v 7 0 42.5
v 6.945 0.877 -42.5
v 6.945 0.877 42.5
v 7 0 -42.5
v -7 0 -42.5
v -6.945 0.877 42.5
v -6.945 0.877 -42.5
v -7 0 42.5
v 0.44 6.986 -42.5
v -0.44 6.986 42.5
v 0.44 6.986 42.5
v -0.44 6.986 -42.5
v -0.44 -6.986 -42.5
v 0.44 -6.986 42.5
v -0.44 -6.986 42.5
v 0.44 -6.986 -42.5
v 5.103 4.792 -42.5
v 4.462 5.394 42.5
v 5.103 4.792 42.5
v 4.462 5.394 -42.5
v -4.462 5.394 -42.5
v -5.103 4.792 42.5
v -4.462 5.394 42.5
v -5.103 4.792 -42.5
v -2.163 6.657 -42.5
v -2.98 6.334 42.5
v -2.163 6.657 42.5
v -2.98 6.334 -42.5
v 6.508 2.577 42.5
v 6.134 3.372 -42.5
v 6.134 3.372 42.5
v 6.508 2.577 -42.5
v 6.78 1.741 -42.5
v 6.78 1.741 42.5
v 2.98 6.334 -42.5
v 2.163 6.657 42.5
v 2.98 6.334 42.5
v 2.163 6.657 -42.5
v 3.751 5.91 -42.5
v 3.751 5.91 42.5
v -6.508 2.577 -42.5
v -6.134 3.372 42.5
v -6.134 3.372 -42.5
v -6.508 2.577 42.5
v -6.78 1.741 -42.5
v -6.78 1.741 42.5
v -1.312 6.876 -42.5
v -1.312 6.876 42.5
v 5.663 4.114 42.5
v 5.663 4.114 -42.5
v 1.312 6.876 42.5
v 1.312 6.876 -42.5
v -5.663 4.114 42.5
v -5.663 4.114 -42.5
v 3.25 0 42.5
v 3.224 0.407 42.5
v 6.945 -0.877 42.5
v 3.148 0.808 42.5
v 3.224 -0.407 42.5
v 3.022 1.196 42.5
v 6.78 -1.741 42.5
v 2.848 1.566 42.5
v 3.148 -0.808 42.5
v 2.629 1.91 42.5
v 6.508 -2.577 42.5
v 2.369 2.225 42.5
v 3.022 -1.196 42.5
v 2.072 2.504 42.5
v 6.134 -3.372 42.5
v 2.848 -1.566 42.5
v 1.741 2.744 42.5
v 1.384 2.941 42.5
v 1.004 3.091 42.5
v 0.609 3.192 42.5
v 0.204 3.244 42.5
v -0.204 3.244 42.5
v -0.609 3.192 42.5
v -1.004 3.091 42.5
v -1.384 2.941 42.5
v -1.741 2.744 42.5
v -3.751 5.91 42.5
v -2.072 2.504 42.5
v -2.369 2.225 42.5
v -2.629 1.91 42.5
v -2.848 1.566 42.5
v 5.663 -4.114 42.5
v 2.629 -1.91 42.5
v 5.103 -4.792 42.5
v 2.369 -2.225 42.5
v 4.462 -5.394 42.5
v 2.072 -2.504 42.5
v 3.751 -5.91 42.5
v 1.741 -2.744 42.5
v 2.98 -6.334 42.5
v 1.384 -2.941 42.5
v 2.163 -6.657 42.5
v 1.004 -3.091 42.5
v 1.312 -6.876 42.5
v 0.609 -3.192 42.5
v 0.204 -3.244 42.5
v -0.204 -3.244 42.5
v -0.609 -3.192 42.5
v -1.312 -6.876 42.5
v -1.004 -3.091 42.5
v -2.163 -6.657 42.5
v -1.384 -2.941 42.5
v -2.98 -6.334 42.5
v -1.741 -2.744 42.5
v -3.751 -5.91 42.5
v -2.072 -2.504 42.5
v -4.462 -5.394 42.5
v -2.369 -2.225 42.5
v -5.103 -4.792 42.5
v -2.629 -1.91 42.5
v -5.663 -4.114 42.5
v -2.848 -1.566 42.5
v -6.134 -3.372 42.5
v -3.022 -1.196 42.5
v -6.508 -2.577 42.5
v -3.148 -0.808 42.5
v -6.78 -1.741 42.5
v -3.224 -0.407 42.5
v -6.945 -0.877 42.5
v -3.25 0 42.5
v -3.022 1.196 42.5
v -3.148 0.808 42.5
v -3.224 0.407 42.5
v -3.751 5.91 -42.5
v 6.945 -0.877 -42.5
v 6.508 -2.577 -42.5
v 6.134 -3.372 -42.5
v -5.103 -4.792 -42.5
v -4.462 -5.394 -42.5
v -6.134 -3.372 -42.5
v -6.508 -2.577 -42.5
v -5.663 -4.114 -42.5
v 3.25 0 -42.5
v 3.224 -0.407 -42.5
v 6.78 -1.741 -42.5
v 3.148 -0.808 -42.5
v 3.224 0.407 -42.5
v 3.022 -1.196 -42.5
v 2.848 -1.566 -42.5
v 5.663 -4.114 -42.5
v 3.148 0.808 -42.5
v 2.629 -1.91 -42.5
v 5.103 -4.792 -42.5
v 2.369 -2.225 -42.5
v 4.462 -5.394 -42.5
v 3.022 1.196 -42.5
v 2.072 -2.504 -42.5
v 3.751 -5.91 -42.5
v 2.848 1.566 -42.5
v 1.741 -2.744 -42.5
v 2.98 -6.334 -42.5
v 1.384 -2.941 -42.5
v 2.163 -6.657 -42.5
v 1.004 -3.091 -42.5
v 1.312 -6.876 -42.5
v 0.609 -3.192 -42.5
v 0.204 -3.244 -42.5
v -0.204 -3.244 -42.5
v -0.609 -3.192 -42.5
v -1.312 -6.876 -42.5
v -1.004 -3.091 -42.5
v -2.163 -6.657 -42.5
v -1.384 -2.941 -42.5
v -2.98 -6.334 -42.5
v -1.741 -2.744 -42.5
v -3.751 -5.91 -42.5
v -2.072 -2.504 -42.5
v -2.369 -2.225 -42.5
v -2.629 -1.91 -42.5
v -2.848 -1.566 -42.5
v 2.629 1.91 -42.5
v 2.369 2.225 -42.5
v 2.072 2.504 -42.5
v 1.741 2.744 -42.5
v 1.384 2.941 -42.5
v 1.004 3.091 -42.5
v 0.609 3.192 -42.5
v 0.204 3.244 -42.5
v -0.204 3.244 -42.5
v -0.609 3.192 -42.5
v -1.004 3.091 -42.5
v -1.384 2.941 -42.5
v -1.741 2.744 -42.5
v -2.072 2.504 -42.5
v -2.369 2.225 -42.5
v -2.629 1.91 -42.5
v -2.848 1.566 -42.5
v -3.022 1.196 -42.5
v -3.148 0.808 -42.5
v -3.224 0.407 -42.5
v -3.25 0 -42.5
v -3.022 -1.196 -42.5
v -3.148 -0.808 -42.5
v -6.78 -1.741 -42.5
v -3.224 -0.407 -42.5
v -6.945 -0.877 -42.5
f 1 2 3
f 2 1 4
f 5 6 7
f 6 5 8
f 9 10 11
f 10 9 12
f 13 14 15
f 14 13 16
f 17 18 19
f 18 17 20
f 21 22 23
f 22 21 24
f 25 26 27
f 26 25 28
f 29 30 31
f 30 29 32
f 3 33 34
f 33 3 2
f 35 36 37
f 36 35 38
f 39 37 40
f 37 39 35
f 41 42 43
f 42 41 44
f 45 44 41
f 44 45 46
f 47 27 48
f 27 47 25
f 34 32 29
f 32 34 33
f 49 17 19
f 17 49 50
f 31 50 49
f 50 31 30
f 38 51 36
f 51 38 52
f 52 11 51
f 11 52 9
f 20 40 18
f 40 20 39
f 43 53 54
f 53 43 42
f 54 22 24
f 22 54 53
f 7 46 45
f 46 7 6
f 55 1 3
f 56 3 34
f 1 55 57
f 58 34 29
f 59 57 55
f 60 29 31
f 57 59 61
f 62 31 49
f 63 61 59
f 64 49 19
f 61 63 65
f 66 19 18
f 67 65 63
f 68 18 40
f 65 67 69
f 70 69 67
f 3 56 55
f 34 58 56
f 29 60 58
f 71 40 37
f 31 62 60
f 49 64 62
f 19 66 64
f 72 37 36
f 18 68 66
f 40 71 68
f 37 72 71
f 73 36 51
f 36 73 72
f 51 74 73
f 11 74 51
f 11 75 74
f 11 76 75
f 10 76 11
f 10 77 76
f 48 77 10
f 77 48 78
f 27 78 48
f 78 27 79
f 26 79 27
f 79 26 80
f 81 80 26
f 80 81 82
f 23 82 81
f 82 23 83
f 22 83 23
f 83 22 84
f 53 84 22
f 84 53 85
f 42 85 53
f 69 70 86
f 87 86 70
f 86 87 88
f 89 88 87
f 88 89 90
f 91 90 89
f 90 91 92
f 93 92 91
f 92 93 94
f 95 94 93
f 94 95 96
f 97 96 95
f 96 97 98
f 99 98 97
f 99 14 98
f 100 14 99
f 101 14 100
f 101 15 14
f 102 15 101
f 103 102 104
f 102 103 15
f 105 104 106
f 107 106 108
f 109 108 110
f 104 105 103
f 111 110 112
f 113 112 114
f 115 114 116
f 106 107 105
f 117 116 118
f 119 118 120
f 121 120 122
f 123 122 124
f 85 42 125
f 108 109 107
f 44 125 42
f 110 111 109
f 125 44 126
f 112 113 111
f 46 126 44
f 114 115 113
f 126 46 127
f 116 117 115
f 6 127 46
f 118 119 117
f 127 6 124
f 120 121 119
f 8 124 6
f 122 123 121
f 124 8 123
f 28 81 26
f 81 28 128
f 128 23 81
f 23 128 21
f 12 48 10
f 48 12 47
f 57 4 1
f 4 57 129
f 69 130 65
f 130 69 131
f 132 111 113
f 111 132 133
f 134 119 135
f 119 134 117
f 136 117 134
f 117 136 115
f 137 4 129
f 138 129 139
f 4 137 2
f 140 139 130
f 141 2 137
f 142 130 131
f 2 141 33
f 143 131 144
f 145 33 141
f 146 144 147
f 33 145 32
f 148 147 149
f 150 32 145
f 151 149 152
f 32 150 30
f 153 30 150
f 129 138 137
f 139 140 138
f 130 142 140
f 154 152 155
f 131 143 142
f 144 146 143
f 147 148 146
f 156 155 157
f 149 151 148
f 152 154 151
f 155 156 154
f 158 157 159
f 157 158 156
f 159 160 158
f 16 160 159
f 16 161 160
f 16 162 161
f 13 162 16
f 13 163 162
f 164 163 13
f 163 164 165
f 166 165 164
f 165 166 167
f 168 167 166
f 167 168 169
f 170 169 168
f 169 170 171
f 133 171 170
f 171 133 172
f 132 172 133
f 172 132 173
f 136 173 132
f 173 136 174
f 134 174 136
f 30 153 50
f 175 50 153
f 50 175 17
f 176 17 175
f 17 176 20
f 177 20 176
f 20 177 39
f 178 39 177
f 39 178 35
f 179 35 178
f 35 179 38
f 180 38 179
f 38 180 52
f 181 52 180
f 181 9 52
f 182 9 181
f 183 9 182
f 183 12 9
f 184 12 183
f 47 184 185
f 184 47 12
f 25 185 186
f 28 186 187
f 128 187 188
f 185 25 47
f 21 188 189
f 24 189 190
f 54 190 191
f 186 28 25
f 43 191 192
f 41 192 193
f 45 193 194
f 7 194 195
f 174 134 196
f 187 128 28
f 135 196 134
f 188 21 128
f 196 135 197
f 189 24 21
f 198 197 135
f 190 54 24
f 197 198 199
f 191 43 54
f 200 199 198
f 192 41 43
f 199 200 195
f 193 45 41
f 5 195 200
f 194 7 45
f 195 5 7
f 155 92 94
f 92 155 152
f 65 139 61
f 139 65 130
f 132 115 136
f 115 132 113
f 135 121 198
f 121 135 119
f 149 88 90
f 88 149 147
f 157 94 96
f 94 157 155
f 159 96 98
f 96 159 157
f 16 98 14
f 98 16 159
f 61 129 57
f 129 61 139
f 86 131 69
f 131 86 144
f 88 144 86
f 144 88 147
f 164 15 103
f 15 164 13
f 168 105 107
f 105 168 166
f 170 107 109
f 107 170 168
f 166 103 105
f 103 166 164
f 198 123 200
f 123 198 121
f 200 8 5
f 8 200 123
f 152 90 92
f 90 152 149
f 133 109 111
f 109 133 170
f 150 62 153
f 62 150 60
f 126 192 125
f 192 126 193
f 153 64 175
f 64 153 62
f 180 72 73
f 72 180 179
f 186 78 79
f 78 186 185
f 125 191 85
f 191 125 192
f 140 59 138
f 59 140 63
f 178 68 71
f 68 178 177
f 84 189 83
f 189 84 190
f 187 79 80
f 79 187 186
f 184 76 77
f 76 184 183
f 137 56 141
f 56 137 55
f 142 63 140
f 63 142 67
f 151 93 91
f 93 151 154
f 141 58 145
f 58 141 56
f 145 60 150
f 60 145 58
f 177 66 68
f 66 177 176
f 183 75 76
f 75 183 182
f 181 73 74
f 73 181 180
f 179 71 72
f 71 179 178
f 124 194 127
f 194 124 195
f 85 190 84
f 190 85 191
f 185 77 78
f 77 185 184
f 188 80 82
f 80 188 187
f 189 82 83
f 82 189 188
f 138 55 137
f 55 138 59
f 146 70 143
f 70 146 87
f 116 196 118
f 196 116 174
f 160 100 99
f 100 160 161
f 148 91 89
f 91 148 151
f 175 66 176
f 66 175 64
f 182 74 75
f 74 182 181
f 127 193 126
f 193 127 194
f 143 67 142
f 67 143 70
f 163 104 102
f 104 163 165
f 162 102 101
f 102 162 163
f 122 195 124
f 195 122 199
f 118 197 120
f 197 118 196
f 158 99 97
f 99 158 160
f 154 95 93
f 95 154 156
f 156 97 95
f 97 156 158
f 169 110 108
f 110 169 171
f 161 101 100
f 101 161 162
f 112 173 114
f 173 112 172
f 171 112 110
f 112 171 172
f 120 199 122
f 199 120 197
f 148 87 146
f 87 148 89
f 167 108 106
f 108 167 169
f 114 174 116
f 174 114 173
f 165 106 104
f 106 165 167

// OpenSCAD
$fn = 50;


difference() {
	union() {
		translate(v = [0, 0, -42.5000000000]) {
			cylinder(h = 85, r = 7.0000000000);
		}
	}
	union() {
		translate(v = [0, 0, -100.0000000000]) {
			cylinder(h = 200, r = 3.2500000000);
		}
	}
}
